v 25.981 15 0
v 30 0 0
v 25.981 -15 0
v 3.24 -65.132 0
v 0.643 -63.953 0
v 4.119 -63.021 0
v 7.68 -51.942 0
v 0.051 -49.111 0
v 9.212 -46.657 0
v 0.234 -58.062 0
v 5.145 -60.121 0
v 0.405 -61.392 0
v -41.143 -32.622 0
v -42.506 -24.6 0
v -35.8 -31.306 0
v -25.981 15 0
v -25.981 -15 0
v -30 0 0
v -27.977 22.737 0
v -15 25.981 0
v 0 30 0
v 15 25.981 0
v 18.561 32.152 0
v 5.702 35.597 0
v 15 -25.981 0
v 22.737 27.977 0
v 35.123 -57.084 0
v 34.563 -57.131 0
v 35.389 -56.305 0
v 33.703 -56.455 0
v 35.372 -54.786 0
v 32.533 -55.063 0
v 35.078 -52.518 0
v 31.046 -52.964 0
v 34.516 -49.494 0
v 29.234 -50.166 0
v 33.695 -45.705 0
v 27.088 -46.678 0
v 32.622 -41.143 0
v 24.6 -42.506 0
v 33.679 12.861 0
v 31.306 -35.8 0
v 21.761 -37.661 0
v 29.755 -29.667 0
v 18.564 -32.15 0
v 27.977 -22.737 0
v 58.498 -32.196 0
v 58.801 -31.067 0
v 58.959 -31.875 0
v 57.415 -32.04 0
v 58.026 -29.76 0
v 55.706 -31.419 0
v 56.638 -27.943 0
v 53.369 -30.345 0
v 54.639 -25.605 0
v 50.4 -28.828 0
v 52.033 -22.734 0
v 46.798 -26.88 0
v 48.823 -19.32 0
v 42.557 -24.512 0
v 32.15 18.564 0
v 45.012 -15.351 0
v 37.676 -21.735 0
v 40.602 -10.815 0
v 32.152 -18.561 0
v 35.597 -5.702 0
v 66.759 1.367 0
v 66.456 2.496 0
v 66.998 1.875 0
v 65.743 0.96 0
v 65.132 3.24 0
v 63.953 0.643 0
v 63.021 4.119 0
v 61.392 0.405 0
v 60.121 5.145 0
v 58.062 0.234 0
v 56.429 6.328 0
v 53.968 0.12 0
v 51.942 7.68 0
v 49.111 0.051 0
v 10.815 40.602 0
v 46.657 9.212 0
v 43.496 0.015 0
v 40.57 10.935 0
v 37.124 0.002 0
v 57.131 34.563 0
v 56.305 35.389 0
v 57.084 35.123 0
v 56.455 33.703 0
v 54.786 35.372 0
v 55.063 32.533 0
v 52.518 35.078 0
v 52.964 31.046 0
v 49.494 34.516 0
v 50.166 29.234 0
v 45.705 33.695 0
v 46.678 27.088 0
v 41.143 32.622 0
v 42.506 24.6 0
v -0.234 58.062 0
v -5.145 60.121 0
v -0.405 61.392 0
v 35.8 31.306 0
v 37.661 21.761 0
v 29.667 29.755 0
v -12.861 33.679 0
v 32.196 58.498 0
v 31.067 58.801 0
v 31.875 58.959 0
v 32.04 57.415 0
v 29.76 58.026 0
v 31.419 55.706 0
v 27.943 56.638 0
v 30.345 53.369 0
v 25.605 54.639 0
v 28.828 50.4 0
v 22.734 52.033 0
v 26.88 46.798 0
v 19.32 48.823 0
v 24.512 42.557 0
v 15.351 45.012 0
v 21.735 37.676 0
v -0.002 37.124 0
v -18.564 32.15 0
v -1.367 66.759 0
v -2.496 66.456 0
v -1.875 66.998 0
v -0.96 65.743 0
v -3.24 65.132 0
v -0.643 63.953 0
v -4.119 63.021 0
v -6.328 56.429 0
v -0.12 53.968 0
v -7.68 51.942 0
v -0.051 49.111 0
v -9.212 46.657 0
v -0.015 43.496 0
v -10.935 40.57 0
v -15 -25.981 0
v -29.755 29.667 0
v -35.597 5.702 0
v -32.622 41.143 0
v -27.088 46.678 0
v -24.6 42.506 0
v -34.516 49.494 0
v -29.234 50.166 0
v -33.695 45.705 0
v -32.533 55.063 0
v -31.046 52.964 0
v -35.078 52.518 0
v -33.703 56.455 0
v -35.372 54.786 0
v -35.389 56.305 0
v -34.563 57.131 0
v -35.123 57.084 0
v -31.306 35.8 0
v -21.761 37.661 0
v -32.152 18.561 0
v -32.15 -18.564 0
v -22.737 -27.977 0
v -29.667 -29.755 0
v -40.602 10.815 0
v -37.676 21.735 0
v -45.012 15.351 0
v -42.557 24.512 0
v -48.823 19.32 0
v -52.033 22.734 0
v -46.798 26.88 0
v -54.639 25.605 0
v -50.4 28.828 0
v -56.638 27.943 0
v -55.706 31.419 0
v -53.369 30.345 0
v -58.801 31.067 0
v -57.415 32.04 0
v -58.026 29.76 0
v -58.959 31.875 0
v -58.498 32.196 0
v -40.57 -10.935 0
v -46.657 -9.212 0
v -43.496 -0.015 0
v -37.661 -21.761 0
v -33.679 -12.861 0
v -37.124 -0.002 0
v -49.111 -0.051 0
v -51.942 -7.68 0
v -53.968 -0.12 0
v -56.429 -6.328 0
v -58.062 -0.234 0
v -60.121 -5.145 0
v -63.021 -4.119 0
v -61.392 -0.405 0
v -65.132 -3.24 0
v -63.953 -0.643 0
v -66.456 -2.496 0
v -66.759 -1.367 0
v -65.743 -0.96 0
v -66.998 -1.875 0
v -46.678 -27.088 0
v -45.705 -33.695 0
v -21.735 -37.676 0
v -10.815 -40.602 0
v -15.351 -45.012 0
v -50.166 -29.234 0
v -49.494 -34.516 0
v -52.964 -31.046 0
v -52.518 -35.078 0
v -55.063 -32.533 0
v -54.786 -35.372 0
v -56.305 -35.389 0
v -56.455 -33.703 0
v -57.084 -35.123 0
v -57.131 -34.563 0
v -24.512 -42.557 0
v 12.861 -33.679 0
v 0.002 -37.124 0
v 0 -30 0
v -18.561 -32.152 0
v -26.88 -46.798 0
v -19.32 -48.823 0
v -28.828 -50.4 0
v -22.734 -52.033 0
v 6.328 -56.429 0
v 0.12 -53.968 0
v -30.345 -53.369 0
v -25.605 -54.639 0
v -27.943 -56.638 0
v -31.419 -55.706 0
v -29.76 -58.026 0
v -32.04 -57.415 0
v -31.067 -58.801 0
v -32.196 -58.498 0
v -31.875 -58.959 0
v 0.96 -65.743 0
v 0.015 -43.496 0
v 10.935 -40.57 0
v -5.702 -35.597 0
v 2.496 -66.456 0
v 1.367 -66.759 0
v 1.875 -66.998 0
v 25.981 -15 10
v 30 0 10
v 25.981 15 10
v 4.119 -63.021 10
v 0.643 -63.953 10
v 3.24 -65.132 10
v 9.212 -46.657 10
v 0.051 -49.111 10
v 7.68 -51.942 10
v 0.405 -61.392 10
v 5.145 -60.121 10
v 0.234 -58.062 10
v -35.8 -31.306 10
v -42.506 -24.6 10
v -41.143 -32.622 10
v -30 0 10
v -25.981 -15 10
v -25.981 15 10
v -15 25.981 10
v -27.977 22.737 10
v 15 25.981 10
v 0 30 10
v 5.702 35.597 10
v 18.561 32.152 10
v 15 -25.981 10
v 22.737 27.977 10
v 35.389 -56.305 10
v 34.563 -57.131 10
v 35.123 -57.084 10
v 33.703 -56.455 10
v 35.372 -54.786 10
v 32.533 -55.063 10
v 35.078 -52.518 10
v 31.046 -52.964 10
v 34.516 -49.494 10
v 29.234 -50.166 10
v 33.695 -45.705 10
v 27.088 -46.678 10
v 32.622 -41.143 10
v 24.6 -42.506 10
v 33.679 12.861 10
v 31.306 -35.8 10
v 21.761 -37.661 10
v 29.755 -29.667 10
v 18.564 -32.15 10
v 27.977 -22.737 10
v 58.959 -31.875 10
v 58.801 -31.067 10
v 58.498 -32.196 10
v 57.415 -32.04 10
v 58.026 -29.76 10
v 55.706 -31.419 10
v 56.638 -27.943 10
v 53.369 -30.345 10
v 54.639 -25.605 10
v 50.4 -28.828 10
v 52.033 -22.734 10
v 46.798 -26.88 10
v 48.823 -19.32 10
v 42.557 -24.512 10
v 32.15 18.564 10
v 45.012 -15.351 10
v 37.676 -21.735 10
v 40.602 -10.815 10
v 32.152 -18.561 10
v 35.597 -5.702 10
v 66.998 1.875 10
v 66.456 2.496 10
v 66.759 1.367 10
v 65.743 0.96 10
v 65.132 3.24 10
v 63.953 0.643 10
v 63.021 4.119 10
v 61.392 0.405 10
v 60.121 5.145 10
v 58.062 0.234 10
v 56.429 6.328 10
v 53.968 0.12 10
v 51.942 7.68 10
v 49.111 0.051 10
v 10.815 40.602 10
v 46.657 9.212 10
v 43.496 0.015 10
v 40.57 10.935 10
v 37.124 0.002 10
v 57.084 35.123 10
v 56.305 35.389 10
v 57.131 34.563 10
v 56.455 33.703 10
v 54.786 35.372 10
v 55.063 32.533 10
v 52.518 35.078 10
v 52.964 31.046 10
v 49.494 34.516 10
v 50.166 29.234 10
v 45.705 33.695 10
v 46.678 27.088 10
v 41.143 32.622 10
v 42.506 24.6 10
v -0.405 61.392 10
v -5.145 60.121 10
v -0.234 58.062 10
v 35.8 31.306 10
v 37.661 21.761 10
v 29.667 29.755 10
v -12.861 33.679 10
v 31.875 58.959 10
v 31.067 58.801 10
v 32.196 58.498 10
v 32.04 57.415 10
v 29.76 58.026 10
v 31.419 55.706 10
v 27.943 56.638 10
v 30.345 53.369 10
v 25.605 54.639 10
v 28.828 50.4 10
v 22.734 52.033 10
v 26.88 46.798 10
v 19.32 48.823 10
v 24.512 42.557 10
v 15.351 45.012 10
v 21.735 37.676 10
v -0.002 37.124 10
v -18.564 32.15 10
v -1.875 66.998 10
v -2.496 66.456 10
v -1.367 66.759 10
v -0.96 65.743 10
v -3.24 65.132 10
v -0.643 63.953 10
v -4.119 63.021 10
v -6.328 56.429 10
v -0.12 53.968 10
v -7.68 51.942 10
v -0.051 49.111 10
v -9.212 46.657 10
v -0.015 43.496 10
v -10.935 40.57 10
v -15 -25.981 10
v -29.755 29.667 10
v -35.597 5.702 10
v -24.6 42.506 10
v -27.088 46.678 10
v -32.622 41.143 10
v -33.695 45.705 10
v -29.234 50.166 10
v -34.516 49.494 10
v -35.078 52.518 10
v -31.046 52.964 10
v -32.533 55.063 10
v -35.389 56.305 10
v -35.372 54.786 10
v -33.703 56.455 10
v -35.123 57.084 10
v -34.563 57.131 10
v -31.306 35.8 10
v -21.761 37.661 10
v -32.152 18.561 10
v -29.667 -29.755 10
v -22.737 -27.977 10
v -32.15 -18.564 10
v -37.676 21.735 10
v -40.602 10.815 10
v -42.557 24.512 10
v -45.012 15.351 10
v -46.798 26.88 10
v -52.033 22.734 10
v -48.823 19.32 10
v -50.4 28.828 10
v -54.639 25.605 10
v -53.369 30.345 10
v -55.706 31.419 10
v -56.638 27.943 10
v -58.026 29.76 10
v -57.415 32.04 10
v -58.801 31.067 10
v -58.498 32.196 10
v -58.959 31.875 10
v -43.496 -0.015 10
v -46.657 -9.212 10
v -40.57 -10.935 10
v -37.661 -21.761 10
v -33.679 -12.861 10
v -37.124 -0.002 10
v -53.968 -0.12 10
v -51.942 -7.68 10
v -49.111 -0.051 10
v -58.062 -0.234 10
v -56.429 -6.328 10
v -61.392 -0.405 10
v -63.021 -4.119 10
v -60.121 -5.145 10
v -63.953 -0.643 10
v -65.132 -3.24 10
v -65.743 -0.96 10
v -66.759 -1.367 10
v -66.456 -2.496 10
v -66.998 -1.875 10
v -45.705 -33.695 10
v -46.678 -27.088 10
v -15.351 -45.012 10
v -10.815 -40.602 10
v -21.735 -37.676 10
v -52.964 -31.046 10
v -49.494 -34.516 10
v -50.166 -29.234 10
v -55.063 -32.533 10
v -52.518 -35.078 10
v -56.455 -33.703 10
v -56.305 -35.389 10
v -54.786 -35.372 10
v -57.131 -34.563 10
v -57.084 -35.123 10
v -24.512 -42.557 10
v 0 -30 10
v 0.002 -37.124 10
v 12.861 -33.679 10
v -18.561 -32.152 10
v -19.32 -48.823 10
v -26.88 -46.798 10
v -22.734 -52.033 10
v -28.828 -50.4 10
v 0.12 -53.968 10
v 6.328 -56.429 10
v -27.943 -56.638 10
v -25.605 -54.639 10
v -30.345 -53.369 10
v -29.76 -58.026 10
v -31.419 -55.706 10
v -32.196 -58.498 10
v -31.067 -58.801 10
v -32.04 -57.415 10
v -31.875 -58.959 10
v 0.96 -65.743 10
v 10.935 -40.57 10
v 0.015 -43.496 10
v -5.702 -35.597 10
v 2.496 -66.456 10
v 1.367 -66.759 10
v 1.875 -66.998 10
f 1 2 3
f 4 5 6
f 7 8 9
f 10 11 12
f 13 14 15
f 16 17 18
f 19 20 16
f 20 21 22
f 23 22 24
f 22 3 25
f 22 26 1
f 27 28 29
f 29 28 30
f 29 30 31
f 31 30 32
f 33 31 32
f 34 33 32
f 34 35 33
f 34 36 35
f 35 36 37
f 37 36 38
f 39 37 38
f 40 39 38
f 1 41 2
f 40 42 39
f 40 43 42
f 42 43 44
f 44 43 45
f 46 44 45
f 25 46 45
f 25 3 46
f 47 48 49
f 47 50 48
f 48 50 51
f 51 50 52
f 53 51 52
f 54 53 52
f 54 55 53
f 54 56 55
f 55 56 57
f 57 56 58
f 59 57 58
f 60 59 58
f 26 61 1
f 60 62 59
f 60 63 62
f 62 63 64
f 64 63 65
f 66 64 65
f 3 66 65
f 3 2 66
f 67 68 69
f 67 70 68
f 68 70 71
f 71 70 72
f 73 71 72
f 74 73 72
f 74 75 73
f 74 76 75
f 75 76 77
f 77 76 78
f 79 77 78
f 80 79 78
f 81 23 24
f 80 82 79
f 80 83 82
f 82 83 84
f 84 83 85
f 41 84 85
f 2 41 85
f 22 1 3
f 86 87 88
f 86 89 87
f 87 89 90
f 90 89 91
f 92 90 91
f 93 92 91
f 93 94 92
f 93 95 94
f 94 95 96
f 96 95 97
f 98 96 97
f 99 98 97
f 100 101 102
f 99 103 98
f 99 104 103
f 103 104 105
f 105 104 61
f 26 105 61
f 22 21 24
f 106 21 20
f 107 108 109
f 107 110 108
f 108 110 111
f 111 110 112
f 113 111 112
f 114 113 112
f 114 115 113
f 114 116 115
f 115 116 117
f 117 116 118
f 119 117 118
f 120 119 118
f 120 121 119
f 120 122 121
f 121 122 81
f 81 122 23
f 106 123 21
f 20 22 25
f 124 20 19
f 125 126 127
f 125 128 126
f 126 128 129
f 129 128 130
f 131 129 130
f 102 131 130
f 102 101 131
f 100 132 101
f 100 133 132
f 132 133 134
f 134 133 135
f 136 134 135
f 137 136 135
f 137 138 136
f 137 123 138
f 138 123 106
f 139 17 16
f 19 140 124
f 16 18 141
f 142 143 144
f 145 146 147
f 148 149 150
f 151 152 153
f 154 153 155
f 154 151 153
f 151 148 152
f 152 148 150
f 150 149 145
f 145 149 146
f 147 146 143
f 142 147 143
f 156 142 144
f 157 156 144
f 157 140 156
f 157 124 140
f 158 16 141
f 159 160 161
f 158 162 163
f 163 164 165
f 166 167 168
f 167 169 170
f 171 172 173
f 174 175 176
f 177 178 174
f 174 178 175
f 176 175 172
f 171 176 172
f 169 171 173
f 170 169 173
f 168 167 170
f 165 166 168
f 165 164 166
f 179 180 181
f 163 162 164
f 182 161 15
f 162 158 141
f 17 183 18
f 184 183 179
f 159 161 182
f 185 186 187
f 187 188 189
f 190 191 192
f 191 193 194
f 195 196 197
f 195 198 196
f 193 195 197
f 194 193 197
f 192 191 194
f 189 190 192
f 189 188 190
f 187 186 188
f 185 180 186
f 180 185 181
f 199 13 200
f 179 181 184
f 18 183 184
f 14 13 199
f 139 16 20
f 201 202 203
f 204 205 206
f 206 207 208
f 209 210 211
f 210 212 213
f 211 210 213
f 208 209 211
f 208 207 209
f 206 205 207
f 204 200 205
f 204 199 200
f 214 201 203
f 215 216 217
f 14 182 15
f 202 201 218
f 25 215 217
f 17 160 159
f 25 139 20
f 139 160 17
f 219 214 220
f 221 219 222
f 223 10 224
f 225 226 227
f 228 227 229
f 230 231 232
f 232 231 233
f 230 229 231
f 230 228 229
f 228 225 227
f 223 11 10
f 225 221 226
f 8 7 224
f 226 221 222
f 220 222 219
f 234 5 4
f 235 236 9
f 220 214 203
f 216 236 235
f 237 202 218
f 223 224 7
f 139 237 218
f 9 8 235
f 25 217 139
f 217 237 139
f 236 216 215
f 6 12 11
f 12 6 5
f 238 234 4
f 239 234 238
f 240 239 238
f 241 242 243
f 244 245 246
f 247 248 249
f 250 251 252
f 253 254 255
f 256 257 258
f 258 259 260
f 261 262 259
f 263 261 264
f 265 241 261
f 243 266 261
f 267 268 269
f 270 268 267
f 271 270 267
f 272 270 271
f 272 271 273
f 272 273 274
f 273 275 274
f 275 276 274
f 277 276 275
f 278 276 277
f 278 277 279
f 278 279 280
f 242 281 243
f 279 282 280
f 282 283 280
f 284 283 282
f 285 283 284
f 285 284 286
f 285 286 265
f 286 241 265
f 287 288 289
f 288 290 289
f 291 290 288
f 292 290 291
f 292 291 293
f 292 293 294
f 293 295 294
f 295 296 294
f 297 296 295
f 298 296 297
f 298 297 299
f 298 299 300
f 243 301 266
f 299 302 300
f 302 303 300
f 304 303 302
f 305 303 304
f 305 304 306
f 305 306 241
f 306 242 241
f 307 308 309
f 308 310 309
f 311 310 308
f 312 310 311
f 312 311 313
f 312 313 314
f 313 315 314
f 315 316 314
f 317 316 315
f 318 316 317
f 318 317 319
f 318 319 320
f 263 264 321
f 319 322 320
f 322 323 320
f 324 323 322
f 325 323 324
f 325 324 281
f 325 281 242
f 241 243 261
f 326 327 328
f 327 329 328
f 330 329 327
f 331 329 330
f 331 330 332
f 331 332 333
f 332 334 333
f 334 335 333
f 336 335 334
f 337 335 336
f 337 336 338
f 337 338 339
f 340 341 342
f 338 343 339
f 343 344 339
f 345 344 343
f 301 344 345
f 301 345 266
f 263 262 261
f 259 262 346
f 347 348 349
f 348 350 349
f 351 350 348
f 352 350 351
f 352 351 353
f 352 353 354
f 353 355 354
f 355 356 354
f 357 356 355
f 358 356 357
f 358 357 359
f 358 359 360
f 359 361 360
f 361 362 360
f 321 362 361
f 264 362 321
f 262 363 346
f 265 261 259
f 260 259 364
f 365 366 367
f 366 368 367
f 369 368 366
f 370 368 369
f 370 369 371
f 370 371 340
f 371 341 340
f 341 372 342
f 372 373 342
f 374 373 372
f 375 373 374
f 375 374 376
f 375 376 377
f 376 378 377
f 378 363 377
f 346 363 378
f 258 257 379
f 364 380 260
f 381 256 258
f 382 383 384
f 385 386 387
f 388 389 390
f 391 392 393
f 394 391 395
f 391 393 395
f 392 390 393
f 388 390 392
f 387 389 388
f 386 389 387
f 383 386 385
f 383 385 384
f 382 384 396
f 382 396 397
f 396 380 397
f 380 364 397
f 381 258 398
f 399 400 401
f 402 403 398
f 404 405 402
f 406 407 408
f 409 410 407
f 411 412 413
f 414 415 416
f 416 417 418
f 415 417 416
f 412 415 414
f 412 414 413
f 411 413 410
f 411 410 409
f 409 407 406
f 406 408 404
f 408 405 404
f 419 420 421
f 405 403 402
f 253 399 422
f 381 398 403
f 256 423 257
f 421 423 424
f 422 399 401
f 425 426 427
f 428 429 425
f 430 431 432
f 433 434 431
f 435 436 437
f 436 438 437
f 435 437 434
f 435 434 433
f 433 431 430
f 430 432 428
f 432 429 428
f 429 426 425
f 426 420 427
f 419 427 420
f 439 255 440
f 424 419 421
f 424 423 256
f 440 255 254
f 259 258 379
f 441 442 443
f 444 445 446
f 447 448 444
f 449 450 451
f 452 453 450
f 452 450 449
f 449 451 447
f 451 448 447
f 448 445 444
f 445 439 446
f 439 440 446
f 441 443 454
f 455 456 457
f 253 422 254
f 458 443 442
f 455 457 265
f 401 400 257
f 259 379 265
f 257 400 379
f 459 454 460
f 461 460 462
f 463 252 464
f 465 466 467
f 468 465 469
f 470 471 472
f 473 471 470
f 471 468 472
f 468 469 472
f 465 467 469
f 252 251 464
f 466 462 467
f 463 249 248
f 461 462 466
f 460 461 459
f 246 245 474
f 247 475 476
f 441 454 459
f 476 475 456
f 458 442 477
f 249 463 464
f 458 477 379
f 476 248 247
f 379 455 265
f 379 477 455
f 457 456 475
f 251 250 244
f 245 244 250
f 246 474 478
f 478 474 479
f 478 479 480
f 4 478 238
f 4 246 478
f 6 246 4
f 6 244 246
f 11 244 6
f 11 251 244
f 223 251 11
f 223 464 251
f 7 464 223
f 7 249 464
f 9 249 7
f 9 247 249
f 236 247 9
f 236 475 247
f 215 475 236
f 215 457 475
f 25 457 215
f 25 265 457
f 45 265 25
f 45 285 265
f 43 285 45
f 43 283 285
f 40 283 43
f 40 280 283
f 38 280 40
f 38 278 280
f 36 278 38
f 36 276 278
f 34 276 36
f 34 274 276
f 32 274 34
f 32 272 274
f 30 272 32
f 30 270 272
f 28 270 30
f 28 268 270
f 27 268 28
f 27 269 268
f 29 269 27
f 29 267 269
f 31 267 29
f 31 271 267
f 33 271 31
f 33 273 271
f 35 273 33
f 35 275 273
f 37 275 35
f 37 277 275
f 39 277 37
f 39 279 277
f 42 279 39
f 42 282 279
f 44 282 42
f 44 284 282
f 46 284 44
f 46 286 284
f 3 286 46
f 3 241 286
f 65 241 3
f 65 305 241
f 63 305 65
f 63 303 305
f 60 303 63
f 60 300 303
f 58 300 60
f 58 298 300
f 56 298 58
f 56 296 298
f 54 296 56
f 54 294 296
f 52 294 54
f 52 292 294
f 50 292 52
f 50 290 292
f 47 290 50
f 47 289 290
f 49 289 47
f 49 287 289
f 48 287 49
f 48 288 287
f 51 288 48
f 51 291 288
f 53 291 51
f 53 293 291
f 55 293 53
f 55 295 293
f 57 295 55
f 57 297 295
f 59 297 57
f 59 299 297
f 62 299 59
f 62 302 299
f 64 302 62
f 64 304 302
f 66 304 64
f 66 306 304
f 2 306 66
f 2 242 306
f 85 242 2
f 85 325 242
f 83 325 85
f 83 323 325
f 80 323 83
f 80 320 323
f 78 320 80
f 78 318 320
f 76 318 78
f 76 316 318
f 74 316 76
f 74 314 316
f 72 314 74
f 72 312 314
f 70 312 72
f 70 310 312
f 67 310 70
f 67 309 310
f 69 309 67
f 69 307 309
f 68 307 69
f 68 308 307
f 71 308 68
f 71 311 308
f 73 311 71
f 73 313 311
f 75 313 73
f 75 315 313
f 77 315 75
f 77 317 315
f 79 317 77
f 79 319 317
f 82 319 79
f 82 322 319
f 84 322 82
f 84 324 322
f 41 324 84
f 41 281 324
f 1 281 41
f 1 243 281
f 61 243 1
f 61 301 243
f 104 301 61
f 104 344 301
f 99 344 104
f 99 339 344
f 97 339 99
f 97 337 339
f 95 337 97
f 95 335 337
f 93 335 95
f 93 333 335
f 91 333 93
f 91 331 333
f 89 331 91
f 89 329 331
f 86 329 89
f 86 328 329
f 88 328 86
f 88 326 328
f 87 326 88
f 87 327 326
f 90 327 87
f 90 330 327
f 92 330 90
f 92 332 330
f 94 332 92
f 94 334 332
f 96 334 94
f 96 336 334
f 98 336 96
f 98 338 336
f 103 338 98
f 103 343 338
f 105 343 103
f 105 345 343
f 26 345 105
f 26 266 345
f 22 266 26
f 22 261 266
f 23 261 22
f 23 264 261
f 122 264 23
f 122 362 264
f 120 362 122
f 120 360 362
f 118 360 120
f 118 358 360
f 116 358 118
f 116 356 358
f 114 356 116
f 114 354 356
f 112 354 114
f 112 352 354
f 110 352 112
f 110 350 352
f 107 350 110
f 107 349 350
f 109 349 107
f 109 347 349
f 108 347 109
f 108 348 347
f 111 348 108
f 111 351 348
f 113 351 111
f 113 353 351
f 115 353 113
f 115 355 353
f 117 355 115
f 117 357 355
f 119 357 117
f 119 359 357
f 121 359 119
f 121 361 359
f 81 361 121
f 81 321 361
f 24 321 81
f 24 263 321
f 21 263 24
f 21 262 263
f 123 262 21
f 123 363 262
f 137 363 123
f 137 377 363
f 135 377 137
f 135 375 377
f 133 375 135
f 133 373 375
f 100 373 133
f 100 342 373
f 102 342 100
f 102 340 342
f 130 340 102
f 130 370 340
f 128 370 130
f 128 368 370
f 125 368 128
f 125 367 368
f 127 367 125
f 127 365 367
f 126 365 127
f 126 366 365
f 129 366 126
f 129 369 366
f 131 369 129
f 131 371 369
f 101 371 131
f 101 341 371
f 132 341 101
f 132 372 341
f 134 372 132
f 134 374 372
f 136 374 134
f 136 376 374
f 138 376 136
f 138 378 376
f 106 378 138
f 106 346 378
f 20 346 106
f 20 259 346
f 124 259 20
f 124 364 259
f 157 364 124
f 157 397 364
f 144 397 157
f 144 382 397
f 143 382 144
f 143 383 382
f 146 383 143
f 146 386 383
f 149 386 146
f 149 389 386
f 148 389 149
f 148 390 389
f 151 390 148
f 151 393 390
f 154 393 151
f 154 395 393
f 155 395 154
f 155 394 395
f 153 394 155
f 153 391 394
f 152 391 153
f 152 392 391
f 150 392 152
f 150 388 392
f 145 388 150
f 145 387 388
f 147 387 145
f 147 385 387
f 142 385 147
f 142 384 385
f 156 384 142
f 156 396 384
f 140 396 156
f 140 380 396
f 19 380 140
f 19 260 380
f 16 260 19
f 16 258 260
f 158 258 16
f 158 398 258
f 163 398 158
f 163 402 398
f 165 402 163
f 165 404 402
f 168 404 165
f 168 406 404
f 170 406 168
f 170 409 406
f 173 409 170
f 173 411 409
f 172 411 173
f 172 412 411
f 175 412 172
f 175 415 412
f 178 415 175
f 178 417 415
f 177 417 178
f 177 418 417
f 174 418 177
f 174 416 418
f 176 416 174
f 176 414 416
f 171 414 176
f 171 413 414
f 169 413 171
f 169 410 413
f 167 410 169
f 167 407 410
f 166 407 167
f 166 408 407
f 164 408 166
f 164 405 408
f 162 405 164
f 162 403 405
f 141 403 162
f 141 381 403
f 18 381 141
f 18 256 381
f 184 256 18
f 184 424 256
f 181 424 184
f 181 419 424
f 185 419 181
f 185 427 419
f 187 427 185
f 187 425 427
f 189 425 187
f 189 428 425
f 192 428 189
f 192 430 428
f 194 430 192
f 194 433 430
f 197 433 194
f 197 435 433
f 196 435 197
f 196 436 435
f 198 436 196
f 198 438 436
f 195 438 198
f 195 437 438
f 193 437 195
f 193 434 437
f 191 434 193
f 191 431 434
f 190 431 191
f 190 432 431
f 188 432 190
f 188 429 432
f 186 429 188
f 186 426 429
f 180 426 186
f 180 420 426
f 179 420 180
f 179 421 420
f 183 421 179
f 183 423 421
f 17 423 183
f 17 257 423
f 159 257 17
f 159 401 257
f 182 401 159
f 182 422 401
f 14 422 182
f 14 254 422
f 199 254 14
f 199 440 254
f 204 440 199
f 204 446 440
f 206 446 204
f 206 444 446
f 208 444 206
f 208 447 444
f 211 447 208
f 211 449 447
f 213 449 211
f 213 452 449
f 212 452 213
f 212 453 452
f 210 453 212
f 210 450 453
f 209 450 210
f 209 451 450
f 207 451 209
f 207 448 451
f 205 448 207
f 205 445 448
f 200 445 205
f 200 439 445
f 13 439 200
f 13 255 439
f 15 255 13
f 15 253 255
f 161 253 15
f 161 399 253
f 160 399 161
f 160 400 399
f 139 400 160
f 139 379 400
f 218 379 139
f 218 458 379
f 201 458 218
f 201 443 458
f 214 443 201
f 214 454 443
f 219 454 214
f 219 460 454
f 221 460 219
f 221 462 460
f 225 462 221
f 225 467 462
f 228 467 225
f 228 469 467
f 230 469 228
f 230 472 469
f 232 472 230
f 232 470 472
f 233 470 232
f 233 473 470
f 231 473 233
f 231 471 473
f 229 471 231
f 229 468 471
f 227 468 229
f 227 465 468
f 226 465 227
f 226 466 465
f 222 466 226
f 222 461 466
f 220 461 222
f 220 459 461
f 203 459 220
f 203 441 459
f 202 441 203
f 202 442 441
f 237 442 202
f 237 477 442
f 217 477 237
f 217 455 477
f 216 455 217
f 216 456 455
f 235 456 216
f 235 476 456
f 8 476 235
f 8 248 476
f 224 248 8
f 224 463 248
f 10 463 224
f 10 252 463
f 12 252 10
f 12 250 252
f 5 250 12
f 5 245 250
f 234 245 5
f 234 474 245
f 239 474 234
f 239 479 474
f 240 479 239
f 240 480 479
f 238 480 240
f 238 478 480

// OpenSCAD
// file: josl/bezier/bezier.scad
//
// Bezier curve implementation. 2D-only; does not generate 3D surfaces.
// This generates a vector of points, which approximates the curve.
//
// (C) 2019 Johannes Ernst.
// License: see package.
//

// There are two ways of invoking this:
// * bezier_curve(p) calculates a single Bezier curve with starting point
//   p[0] and end point p[-1], with the remaining points in between being
//   additional control points. Bezier curves of degree 2, 3 and 4 are
//   supported, meaning len(p) can be 2, 3 or 4.
// * bezier_curve_seq( p, q ) calculates a connected sequence of Bezier
//   curves, where the second curve's first point is the first curve's last
//   point. Here p is the sequence of points through which the connected
//   sequence curve must go, and q contains any (optional) additional
//   control points for the various Bezier segments.
//   Note: the generated sequence of points does not include the very last
//   point. If you want it, invoke the next form. (This makes it
//   easier to concatenate and pass into polygon() which auto-closes.)
// * bezier_curve_seq_inclusive( p, q ) is the same as bezier_curve_seq( p, q )
//   but also includes the last point.
//
// Special parameter: $bsteps: the number of points to calculate for each
// Bezier curve.
//
// Examples; Note that to display those examples in OpenScad, you have to use
// those segments as part of a closed loop with non-zero width, such as a
// polygon with at least 3 points, so you can see something!
// * bezier_curve( [ [0, 0], [10, 10] ])
//   the (degenerate) straight line between the two points
// * bezier_curve( [ [0, 0], [10, 0], [10, 10] ] )
//   A degree-3 curve that starts at [0, 0], ends at [10, 10] and uses
//   control point [10, 0].
// * bezier_curve( [ [0, 0], [10, 0], [5, 5], [10, 10] ] )
//   A degree-4 curve that starts at [0, 0], ends at [10, 10] and also
//   uses control points [10, 0] and [5, 5].

$bsteps = 20;

function bezier_curve_seq( p, q=[], bsteps=$bsteps ) = [
    for( i = [ 0 : len(p)-2 ] ) each
        ( i < len(q) && len(q[i]) > 0 )
            ? bezier_curve( concat( [ p[i] ], q[i], [ p[i+1] ] ), bsteps=bsteps )
            : [ p[i] ]
];

function bezier_curve_seq_inclusive( p, q=[], bsteps=$bsteps ) = [
    for( i = [ 0 : len(p)-2 ] ) each
        ( i < len(q) && len(q[i]) > 0 )
            ? bezier_curve( concat( [ p[i] ], q[i], [ p[i+1] ] ), bsteps=bsteps )
            : [ p[i] ],
    p[len(p)-1]
];


function bezier_curve( p, bsteps = $bsteps ) = [
    for( i = [ 0 : bsteps-1 ] ) bezier_curve_calc( i/bsteps, p )
];

function bezier_curve_calc( t, p ) =
      len(p) == 2 ? bezier_curve_calc2( t, p ) 
    : len(p) == 3 ? bezier_curve_calc3( t, p )
    : len(p) == 4 ? bezier_curve_calc4( t, p )
    : error( "Unsupported length of points array", len(p))
;

function bezier_curve_calc2(t, p) = 
          p[0] * (1-t)
    +     p[1] * t
;

function bezier_curve_calc3(t, p) = 
          p[0] * (1-t) * (1-t)
    + 2 * p[1] * t     * (1-t)
    +     p[2] * t     * t
;

function bezier_curve_calc4(t, p) = 
          p[0] * (1-t) * (1-t) * (1-t)
    + 3 * p[1] * t     * (1-t) * (1-t)
    + 3 * p[2] * t     * t     * (1-t)
    +     p[3] * t     * t     * t
;
// main file
//
// A very basic flower pattern testing out the Bezier curves.
//
// (C) 2019 Johannes Ernst.
// License: see package.
//

use <josl/bezier/bezier.scad>

r  = 30;
r2 = 80;
delta = 0;

p = [ for( alpha = [ 0 : 30 : 360 ] ) [ cos(alpha) * r, sin(alpha) * r ]];
q = [ for( alpha = [ 0 : 30 : 360 ] ) [ [ cos(alpha) * r2, sin(alpha) * r2 ], [ cos(alpha+delta) * r2, sin(alpha+delta) * r2 ] ]];

linear_extrude( 10 ) {
    polygon( bezier_curve_seq( p, q ));
};
